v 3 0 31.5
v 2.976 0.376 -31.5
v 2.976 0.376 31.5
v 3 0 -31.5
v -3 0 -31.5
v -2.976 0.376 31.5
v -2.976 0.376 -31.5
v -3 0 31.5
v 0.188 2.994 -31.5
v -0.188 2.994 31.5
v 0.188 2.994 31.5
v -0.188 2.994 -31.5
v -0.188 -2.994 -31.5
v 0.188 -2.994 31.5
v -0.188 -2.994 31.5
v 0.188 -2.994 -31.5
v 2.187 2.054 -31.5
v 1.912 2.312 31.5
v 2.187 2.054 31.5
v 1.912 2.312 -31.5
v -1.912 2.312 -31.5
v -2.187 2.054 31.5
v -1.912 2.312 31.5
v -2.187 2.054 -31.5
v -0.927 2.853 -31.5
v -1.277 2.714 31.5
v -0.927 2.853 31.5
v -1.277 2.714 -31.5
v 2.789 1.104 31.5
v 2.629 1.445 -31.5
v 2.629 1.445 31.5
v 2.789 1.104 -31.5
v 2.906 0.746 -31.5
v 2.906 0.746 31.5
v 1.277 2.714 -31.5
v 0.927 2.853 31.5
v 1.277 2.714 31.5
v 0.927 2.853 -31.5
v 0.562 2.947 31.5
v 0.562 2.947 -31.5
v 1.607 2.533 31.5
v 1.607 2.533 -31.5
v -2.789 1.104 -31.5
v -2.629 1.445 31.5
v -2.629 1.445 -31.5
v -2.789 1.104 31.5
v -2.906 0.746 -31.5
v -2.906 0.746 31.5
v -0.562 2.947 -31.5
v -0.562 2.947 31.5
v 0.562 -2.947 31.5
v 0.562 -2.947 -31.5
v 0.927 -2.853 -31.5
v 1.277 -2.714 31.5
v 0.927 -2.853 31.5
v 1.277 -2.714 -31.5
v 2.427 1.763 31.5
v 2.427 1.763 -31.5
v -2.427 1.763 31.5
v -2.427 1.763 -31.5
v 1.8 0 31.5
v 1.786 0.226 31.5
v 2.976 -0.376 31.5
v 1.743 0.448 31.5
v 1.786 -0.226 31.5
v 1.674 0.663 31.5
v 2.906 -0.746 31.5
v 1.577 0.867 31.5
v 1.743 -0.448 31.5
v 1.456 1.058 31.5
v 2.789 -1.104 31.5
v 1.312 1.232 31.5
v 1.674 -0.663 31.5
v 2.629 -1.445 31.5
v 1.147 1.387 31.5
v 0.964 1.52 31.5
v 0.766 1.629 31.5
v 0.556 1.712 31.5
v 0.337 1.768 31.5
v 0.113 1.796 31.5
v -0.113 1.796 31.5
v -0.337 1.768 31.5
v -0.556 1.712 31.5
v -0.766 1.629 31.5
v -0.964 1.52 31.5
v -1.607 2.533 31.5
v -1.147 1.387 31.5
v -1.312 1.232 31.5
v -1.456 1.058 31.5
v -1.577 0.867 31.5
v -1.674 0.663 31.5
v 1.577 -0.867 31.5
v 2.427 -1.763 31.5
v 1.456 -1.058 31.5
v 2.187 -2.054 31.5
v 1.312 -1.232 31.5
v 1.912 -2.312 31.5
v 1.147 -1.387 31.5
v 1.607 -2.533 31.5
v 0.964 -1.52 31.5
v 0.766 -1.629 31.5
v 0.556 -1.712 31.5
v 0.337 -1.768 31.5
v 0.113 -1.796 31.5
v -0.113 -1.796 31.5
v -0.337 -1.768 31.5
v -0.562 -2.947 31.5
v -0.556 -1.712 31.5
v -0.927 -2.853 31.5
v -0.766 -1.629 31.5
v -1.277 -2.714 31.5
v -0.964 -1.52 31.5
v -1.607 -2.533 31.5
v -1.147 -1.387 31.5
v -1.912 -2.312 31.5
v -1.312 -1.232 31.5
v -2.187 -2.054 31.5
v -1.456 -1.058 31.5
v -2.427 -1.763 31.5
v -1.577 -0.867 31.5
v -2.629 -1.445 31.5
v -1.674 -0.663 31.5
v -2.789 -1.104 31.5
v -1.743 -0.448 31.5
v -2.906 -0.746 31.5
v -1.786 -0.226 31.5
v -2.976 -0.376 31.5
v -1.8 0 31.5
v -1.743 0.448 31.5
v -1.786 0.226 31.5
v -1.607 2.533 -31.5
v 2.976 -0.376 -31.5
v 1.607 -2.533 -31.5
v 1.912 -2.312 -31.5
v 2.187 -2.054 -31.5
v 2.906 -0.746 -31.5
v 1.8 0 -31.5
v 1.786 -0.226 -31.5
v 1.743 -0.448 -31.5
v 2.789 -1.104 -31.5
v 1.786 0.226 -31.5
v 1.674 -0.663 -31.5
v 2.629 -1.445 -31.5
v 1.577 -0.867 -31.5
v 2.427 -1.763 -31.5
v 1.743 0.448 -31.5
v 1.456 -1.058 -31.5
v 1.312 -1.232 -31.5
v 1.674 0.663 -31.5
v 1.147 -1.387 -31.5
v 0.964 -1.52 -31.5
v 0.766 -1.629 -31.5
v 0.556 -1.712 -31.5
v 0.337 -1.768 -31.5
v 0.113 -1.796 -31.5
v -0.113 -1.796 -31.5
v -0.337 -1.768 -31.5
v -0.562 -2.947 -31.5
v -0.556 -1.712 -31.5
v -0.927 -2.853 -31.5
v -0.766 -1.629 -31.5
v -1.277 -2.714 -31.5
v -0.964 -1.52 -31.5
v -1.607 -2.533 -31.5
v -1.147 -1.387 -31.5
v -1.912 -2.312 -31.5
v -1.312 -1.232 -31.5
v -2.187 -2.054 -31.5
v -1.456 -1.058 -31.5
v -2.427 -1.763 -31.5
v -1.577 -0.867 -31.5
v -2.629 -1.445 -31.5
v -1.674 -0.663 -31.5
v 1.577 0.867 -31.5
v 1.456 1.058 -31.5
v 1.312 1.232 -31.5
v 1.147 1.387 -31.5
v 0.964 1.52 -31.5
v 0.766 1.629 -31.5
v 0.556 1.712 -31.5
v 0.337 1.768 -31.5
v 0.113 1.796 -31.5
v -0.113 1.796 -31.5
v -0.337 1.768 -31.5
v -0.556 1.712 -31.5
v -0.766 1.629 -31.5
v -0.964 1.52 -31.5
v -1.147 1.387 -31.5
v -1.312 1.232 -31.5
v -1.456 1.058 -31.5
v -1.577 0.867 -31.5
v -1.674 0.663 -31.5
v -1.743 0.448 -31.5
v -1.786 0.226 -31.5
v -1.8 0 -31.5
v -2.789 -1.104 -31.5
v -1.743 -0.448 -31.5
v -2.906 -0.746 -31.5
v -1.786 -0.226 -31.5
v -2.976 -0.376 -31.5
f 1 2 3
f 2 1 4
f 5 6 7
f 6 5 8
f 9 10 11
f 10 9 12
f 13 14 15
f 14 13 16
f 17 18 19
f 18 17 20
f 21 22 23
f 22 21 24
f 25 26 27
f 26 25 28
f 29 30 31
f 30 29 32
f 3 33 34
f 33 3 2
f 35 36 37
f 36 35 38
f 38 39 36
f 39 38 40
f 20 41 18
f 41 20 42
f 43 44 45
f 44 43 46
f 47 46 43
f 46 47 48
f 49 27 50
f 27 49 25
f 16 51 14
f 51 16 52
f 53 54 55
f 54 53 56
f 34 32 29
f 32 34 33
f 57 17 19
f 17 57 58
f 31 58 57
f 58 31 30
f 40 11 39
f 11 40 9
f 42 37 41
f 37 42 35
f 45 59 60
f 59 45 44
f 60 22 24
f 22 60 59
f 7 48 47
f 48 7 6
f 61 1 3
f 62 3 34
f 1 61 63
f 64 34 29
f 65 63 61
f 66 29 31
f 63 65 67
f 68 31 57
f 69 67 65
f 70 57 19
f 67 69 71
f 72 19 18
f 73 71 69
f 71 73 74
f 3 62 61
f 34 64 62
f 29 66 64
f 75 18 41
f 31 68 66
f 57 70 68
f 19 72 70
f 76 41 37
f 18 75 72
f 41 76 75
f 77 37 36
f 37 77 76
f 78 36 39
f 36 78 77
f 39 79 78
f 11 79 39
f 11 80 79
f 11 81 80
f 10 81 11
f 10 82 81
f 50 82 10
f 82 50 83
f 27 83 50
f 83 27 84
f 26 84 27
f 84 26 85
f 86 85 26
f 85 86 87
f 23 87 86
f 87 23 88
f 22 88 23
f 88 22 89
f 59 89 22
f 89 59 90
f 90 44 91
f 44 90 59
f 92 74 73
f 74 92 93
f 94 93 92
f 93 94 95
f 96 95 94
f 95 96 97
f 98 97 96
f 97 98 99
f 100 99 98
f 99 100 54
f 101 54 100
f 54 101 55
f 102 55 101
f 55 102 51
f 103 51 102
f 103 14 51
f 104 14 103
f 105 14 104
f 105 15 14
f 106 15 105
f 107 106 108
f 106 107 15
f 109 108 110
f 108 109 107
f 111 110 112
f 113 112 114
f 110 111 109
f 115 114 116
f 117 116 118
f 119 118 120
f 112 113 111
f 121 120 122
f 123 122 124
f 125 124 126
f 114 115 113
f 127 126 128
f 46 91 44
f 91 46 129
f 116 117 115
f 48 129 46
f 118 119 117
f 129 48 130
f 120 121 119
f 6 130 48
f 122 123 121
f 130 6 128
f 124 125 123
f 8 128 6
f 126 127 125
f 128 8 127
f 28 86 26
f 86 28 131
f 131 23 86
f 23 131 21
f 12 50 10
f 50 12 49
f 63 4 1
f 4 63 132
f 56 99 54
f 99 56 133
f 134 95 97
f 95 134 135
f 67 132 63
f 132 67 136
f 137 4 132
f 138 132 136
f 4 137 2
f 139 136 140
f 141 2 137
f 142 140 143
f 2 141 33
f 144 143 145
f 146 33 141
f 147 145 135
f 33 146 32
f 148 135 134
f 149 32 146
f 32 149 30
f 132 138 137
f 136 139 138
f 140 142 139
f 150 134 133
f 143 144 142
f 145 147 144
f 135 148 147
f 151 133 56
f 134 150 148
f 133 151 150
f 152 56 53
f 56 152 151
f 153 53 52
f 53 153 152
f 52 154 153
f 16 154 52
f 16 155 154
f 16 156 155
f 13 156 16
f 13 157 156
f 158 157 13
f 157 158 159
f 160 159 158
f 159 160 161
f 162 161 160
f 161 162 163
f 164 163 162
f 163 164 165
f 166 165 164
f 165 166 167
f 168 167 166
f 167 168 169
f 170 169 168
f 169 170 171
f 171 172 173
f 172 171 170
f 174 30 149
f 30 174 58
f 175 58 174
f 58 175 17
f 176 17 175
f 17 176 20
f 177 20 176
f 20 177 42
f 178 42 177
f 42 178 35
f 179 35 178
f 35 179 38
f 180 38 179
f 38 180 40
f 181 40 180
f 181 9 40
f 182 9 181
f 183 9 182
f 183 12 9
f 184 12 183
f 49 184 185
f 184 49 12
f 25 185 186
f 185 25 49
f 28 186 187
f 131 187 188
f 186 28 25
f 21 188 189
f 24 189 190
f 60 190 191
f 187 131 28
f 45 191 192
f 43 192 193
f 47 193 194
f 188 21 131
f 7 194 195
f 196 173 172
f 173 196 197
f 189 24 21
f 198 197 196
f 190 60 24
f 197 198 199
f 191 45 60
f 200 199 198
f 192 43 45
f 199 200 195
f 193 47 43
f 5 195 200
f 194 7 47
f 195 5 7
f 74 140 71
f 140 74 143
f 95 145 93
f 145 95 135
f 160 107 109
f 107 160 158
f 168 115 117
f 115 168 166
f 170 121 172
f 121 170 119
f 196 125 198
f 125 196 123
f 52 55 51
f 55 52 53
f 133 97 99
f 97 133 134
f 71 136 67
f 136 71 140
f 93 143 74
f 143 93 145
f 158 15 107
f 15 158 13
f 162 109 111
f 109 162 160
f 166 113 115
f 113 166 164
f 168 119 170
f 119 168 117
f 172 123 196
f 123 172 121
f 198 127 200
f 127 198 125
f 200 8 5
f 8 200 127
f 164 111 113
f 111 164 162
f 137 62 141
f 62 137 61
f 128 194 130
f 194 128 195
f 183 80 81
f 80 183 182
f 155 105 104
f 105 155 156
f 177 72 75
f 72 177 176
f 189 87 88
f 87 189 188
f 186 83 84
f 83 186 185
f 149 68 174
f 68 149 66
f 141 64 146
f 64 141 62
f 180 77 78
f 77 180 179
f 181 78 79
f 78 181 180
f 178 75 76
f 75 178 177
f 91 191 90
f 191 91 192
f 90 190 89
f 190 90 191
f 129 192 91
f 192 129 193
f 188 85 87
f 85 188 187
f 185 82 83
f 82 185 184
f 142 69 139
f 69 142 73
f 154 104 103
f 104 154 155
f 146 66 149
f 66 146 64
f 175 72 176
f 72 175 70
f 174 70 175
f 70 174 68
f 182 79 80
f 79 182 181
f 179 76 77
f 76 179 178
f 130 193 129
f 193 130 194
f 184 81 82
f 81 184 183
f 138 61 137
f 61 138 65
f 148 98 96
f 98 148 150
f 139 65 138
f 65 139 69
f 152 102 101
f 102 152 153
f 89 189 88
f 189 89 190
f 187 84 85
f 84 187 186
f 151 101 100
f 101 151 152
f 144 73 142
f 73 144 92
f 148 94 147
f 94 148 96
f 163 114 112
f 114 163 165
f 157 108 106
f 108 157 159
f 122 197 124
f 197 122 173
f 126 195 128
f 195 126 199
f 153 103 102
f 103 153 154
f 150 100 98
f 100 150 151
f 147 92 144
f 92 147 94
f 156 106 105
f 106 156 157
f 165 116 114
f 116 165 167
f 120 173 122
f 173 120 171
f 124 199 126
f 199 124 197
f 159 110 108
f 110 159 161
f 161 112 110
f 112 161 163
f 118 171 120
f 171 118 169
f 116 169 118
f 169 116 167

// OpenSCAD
$fn = 50;


difference() {
	union() {
		translate(v = [0, 0, -31.5000000000]) {
			cylinder(h = 63, r = 3.0000000000);
		}
	}
	union() {
		translate(v = [0, 0, -100.0000000000]) {
			cylinder(h = 200, r = 1.8000000000);
		}
	}
}
